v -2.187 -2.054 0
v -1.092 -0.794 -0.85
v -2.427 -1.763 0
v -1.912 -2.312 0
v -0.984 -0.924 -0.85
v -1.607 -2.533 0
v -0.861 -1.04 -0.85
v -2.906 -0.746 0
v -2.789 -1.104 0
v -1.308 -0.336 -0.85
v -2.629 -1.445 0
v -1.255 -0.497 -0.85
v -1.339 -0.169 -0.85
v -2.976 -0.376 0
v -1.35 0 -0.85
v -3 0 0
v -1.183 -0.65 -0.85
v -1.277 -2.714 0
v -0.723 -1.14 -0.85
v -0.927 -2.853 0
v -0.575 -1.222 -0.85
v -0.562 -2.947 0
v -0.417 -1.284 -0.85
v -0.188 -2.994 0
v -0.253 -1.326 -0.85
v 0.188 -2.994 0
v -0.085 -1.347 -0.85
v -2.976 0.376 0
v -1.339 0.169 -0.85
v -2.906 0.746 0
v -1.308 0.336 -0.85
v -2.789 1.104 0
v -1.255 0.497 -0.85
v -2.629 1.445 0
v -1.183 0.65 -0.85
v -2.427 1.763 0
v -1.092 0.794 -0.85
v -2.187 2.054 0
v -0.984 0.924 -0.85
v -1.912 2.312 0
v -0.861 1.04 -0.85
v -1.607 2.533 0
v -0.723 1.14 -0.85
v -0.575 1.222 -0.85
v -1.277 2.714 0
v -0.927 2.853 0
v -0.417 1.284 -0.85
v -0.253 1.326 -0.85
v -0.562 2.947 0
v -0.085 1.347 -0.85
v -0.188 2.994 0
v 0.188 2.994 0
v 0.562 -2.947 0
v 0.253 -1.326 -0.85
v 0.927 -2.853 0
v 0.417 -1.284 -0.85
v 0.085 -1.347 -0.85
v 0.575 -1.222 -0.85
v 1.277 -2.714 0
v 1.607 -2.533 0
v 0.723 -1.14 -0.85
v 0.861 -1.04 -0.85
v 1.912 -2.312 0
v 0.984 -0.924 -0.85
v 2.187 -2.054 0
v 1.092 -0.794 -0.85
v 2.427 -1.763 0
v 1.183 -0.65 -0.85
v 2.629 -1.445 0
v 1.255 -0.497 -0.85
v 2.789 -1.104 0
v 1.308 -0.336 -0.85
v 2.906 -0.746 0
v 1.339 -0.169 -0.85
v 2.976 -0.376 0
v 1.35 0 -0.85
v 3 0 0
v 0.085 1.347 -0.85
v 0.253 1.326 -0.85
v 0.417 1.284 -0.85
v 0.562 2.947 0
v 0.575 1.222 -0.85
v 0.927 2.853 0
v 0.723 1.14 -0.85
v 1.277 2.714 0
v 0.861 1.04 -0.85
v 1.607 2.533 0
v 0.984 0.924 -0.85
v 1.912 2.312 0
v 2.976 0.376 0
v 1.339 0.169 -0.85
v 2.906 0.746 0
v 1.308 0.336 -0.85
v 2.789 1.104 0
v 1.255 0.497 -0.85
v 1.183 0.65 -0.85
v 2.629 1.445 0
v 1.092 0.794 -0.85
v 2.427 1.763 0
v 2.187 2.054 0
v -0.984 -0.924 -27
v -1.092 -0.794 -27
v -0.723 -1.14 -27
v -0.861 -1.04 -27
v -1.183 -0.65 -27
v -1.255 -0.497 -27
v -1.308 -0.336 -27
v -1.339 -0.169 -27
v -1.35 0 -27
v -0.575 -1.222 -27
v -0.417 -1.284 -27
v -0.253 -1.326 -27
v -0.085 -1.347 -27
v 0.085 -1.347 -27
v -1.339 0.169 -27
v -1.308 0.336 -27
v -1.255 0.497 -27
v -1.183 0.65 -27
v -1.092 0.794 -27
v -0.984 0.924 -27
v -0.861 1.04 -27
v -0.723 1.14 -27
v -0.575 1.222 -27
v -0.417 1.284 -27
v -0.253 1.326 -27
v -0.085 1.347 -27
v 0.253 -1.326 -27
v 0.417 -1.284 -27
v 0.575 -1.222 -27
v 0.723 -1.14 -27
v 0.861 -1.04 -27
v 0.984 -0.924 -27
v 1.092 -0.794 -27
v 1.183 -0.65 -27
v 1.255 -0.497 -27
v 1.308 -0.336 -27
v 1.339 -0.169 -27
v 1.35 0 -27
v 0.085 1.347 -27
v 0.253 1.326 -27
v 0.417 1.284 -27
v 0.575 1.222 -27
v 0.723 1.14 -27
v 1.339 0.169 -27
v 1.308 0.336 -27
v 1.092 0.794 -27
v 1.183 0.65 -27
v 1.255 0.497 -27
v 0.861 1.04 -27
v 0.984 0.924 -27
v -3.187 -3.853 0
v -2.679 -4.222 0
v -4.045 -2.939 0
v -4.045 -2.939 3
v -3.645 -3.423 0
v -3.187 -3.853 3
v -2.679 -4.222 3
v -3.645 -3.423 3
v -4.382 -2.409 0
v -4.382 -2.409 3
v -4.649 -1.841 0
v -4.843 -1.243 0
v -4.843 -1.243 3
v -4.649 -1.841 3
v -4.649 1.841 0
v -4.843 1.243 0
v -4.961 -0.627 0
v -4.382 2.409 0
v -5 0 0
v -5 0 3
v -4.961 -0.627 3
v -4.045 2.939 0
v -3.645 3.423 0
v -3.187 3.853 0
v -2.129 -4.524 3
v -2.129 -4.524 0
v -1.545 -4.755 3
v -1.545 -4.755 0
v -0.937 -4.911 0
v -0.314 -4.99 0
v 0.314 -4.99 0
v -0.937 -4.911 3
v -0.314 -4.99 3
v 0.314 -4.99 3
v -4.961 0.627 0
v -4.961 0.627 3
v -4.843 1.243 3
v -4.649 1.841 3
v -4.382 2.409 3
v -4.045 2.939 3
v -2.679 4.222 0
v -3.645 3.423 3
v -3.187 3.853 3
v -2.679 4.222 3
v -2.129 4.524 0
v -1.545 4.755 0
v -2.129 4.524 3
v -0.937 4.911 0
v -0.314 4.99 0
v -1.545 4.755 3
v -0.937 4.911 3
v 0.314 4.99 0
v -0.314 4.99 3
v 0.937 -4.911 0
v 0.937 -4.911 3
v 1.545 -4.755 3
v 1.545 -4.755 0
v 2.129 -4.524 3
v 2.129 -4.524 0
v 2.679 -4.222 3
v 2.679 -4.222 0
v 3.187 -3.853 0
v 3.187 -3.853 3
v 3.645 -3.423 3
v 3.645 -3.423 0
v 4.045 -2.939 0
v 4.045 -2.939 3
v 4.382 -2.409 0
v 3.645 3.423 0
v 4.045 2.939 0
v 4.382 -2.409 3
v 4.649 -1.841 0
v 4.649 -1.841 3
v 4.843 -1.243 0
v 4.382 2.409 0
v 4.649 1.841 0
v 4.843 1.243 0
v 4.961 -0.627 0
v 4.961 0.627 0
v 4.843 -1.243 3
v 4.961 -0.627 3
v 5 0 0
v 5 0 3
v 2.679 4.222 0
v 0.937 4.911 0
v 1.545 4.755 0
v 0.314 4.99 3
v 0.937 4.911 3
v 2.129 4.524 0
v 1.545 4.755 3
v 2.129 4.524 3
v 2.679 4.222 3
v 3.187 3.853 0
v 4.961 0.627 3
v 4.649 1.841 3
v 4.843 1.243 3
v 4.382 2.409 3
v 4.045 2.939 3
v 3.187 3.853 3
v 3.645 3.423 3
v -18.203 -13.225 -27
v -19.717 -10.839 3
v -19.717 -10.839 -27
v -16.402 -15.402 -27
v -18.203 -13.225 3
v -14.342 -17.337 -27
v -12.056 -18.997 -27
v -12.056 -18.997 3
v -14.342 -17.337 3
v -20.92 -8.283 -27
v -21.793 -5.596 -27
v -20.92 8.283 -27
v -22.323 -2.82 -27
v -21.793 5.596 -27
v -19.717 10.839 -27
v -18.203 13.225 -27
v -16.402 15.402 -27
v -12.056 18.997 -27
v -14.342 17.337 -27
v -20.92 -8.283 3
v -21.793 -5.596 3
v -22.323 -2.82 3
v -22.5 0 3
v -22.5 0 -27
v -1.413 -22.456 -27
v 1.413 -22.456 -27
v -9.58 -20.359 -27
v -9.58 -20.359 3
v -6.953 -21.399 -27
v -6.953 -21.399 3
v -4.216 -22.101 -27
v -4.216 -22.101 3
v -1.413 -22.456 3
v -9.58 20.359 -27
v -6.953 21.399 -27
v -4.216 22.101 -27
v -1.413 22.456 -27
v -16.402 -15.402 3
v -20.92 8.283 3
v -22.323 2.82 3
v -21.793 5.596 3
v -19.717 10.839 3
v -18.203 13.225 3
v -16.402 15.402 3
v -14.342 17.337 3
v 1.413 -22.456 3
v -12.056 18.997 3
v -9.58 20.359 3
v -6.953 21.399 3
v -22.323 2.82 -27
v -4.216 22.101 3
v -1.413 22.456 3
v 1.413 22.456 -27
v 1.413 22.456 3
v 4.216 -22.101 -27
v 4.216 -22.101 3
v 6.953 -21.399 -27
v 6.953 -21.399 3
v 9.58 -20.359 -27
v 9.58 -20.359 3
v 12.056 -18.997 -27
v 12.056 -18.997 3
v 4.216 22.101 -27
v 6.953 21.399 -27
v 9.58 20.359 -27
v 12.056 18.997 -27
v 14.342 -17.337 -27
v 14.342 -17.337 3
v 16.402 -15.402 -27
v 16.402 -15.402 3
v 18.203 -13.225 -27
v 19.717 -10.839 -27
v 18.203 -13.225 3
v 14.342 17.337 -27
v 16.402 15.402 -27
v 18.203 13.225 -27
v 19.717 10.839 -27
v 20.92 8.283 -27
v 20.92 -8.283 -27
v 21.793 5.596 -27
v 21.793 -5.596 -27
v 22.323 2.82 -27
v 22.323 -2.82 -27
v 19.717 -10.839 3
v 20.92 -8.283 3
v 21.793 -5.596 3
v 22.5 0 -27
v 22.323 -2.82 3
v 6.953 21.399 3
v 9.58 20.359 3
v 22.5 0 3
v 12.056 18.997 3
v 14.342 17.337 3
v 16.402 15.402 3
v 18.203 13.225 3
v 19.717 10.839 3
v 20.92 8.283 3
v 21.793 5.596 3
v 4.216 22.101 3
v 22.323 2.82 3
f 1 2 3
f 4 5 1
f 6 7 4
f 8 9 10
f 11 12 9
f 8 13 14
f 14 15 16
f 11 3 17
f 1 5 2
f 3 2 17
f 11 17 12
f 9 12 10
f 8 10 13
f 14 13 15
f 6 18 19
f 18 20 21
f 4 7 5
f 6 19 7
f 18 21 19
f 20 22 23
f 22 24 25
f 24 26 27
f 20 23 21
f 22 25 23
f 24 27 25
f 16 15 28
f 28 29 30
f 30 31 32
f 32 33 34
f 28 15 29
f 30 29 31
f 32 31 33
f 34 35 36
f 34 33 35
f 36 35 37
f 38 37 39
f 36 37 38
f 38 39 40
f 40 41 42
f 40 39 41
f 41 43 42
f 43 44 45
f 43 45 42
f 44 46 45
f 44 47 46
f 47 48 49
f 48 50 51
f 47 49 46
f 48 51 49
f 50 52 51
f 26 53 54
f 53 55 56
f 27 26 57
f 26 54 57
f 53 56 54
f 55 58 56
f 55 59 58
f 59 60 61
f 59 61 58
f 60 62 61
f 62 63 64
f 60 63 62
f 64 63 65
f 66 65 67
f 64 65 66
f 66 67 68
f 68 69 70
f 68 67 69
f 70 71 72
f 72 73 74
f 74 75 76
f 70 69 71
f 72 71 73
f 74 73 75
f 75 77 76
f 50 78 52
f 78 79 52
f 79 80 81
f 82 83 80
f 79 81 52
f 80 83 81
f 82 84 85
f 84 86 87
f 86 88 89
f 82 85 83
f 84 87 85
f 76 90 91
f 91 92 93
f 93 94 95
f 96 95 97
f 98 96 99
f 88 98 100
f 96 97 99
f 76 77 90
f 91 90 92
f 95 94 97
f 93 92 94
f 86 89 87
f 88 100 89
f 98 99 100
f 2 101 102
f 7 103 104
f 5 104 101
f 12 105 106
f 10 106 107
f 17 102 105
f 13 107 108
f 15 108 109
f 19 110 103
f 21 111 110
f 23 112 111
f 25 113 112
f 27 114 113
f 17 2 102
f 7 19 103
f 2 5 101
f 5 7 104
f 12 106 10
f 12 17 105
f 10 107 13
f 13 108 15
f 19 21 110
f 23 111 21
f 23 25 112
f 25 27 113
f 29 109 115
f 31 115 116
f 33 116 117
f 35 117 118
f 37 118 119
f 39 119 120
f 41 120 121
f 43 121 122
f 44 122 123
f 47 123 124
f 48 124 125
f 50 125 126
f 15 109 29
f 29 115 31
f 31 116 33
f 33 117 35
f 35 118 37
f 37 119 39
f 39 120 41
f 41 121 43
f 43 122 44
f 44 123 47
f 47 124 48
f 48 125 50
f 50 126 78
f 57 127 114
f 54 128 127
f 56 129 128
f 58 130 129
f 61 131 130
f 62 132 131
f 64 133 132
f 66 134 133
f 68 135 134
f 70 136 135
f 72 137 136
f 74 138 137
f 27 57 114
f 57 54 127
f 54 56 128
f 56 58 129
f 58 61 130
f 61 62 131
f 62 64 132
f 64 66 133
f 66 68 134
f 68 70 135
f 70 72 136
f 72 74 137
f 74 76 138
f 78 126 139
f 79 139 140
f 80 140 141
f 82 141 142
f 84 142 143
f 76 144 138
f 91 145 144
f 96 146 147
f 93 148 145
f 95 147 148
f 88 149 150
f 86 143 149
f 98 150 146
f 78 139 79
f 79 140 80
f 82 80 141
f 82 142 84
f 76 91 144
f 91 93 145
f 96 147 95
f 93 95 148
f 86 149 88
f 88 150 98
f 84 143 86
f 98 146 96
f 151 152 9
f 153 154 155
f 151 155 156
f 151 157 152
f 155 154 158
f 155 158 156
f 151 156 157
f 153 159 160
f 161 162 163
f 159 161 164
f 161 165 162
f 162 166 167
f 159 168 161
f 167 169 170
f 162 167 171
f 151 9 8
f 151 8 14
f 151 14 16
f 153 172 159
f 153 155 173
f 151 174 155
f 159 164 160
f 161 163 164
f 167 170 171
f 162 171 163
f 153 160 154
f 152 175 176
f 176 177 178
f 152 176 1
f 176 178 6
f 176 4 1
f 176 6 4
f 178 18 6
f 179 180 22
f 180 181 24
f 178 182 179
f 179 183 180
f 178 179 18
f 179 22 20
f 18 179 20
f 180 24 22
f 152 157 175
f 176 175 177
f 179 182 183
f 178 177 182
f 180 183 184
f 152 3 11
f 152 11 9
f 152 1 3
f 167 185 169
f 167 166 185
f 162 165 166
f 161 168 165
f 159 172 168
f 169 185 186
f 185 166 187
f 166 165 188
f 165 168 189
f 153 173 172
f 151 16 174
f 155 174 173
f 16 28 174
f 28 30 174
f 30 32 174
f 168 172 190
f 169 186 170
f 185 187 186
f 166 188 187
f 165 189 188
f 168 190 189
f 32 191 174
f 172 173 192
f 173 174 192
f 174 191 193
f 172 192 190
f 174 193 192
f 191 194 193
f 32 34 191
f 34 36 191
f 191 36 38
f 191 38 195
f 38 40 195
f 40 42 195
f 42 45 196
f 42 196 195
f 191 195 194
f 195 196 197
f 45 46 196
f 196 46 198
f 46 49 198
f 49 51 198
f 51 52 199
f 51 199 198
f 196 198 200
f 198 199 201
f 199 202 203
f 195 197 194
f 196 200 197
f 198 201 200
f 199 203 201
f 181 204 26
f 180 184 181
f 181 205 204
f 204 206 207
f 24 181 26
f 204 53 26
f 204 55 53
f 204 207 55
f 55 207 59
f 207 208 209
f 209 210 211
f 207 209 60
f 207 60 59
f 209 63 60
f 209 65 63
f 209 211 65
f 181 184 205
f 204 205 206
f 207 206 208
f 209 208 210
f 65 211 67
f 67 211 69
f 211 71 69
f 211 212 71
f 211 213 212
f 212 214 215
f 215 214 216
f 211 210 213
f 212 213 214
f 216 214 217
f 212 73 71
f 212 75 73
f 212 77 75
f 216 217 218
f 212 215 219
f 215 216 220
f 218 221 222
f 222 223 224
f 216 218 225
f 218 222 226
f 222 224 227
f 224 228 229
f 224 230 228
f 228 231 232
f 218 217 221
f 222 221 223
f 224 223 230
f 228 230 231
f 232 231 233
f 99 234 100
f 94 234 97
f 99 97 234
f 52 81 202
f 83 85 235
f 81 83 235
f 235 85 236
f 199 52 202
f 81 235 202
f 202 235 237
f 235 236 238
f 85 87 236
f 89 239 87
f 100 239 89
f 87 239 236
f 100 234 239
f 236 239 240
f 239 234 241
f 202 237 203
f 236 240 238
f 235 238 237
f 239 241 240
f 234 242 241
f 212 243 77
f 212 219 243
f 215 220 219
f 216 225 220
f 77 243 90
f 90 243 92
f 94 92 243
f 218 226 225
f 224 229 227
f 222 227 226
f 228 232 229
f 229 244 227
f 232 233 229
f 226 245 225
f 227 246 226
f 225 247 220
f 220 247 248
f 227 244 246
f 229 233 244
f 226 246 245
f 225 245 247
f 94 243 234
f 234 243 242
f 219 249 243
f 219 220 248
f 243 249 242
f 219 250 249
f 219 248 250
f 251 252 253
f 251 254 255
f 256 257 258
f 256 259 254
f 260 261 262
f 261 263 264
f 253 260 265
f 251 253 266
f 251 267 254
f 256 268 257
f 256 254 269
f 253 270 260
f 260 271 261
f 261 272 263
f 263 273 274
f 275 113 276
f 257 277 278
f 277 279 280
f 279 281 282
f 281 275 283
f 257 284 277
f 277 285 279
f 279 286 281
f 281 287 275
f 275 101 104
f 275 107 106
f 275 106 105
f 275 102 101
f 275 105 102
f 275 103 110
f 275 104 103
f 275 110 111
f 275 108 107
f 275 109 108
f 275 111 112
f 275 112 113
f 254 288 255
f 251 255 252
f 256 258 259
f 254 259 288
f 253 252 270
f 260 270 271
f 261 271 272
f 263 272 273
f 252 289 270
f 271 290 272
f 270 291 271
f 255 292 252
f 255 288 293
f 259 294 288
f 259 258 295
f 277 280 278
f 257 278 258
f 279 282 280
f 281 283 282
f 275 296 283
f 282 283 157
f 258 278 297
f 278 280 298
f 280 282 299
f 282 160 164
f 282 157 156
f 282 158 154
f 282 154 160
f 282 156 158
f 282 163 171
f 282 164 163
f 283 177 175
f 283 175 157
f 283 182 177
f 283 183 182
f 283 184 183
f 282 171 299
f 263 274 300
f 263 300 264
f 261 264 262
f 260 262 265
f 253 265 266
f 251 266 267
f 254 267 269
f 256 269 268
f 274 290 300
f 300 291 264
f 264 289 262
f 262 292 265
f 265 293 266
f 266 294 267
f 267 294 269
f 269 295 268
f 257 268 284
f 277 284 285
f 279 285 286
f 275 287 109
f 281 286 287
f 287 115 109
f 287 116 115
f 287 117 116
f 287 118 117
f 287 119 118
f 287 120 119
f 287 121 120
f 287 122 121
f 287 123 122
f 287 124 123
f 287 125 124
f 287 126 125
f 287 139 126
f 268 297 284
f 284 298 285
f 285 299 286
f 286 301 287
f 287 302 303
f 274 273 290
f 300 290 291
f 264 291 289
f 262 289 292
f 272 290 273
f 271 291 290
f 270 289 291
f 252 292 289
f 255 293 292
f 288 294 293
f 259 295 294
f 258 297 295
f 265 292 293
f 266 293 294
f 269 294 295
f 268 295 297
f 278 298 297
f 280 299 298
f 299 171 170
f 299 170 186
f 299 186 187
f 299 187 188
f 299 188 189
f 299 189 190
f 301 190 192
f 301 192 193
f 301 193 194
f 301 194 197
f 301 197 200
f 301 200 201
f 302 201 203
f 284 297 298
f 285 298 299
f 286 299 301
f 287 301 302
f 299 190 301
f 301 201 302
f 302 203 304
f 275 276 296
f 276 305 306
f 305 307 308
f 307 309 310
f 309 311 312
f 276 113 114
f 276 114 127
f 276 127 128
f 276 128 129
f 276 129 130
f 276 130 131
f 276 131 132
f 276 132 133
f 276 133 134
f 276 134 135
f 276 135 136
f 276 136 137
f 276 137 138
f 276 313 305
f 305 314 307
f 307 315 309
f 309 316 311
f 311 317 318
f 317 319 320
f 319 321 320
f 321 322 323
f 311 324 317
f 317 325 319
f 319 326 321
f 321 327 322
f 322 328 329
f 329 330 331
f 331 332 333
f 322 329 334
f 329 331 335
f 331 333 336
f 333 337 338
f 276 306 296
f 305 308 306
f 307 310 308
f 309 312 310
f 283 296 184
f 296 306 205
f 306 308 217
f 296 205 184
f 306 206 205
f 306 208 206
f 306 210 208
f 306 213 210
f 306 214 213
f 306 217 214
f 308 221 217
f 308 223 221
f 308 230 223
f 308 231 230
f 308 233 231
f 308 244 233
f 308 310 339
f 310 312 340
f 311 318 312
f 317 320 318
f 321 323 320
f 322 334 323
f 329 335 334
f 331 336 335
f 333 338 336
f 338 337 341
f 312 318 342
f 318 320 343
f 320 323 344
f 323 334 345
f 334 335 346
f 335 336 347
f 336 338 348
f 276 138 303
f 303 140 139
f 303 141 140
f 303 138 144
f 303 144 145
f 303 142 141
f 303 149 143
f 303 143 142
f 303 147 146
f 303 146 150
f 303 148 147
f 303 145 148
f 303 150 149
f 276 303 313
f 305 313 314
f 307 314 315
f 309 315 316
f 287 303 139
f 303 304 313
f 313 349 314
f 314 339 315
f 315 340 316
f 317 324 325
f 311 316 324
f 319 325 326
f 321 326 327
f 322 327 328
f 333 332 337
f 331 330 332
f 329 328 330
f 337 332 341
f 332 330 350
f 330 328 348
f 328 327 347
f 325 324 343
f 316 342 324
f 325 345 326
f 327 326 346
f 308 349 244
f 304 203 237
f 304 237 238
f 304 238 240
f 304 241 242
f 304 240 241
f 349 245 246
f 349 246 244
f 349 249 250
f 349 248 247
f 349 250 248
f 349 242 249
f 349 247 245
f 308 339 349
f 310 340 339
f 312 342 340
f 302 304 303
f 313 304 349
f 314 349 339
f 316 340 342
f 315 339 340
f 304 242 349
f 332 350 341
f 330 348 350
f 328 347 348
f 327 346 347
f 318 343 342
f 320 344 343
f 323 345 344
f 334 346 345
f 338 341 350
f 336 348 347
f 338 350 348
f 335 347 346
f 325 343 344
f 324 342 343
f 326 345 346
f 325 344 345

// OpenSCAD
$fn = 50;


difference() {
	union() {
		translate(v = [0, 0, -27.0000000000]) {
			cylinder(h = 30, r = 22.5000000000);
		}
	}
	union() {
		translate(v = [0, 0, 0]) {
			rotate(a = [0, 0, 0]) {
				difference() {
					union() {
						translate(v = [0, 0, -30.0000000000]) {
							cylinder(h = 30, r = 1.0000000000);
						}
						translate(v = [0, 0, -0.8500000000]) {
							cylinder(h = 0.8500000000, r1 = 1.3500000000, r2 = 3.0000000000);
						}
						translate(v = [0, 0, -30.0000000000]) {
							cylinder(h = 30, r = 1.3500000000);
						}
						translate(v = [0, 0, -30.0000000000]) {
							cylinder(h = 30, r = 1.0000000000);
						}
					}
					union();
				}
			}
		}
		#cylinder(h = 3, r = 5.0000000000);
	}
}
